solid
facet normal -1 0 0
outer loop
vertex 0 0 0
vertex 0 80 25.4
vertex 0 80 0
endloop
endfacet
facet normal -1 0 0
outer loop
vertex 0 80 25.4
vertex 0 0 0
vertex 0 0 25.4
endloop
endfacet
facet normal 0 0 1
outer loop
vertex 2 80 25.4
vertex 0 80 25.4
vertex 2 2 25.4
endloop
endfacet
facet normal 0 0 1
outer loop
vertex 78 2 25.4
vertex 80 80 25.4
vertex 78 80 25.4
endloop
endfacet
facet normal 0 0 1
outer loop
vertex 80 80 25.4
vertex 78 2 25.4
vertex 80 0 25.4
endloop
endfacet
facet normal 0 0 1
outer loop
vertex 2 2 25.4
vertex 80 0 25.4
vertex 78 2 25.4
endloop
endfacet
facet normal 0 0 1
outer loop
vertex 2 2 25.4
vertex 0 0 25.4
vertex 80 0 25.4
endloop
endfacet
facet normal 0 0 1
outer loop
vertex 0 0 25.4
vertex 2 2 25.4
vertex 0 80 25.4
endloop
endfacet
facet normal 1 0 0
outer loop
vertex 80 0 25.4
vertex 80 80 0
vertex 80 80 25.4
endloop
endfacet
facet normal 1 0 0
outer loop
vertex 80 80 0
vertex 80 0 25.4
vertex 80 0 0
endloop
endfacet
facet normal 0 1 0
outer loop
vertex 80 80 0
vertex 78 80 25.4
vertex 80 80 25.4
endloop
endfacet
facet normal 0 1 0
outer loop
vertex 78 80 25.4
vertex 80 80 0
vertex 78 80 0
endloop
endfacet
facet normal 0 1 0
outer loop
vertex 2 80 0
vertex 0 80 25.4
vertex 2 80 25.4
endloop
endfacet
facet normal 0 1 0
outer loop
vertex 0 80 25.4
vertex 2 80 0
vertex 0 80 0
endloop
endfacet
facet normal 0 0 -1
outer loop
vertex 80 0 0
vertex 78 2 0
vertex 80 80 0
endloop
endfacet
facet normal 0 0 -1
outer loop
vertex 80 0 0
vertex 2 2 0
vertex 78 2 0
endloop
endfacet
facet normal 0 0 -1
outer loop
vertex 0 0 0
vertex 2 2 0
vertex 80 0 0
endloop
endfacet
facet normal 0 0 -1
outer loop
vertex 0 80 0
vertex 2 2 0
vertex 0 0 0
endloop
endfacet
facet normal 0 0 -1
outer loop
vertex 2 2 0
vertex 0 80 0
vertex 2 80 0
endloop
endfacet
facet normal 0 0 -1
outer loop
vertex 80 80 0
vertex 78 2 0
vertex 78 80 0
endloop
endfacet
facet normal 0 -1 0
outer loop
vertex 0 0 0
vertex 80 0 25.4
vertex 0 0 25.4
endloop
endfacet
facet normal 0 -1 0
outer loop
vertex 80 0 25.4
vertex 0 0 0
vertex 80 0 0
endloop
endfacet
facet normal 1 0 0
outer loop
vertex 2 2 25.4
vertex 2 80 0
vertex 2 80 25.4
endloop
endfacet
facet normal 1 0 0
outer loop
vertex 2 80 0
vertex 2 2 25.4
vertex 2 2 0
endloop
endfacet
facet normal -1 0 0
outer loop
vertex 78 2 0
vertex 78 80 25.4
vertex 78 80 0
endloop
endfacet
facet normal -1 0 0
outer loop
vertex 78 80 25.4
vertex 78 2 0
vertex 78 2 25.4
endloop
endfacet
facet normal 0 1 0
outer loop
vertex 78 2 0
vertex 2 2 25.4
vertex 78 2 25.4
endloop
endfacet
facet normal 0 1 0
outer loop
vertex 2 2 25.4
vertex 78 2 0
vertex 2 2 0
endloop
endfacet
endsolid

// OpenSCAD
difference() {
	cube([80,80,25.4]);
	translate([2,2,-1])
	cube([80-4,80,30]);
}
